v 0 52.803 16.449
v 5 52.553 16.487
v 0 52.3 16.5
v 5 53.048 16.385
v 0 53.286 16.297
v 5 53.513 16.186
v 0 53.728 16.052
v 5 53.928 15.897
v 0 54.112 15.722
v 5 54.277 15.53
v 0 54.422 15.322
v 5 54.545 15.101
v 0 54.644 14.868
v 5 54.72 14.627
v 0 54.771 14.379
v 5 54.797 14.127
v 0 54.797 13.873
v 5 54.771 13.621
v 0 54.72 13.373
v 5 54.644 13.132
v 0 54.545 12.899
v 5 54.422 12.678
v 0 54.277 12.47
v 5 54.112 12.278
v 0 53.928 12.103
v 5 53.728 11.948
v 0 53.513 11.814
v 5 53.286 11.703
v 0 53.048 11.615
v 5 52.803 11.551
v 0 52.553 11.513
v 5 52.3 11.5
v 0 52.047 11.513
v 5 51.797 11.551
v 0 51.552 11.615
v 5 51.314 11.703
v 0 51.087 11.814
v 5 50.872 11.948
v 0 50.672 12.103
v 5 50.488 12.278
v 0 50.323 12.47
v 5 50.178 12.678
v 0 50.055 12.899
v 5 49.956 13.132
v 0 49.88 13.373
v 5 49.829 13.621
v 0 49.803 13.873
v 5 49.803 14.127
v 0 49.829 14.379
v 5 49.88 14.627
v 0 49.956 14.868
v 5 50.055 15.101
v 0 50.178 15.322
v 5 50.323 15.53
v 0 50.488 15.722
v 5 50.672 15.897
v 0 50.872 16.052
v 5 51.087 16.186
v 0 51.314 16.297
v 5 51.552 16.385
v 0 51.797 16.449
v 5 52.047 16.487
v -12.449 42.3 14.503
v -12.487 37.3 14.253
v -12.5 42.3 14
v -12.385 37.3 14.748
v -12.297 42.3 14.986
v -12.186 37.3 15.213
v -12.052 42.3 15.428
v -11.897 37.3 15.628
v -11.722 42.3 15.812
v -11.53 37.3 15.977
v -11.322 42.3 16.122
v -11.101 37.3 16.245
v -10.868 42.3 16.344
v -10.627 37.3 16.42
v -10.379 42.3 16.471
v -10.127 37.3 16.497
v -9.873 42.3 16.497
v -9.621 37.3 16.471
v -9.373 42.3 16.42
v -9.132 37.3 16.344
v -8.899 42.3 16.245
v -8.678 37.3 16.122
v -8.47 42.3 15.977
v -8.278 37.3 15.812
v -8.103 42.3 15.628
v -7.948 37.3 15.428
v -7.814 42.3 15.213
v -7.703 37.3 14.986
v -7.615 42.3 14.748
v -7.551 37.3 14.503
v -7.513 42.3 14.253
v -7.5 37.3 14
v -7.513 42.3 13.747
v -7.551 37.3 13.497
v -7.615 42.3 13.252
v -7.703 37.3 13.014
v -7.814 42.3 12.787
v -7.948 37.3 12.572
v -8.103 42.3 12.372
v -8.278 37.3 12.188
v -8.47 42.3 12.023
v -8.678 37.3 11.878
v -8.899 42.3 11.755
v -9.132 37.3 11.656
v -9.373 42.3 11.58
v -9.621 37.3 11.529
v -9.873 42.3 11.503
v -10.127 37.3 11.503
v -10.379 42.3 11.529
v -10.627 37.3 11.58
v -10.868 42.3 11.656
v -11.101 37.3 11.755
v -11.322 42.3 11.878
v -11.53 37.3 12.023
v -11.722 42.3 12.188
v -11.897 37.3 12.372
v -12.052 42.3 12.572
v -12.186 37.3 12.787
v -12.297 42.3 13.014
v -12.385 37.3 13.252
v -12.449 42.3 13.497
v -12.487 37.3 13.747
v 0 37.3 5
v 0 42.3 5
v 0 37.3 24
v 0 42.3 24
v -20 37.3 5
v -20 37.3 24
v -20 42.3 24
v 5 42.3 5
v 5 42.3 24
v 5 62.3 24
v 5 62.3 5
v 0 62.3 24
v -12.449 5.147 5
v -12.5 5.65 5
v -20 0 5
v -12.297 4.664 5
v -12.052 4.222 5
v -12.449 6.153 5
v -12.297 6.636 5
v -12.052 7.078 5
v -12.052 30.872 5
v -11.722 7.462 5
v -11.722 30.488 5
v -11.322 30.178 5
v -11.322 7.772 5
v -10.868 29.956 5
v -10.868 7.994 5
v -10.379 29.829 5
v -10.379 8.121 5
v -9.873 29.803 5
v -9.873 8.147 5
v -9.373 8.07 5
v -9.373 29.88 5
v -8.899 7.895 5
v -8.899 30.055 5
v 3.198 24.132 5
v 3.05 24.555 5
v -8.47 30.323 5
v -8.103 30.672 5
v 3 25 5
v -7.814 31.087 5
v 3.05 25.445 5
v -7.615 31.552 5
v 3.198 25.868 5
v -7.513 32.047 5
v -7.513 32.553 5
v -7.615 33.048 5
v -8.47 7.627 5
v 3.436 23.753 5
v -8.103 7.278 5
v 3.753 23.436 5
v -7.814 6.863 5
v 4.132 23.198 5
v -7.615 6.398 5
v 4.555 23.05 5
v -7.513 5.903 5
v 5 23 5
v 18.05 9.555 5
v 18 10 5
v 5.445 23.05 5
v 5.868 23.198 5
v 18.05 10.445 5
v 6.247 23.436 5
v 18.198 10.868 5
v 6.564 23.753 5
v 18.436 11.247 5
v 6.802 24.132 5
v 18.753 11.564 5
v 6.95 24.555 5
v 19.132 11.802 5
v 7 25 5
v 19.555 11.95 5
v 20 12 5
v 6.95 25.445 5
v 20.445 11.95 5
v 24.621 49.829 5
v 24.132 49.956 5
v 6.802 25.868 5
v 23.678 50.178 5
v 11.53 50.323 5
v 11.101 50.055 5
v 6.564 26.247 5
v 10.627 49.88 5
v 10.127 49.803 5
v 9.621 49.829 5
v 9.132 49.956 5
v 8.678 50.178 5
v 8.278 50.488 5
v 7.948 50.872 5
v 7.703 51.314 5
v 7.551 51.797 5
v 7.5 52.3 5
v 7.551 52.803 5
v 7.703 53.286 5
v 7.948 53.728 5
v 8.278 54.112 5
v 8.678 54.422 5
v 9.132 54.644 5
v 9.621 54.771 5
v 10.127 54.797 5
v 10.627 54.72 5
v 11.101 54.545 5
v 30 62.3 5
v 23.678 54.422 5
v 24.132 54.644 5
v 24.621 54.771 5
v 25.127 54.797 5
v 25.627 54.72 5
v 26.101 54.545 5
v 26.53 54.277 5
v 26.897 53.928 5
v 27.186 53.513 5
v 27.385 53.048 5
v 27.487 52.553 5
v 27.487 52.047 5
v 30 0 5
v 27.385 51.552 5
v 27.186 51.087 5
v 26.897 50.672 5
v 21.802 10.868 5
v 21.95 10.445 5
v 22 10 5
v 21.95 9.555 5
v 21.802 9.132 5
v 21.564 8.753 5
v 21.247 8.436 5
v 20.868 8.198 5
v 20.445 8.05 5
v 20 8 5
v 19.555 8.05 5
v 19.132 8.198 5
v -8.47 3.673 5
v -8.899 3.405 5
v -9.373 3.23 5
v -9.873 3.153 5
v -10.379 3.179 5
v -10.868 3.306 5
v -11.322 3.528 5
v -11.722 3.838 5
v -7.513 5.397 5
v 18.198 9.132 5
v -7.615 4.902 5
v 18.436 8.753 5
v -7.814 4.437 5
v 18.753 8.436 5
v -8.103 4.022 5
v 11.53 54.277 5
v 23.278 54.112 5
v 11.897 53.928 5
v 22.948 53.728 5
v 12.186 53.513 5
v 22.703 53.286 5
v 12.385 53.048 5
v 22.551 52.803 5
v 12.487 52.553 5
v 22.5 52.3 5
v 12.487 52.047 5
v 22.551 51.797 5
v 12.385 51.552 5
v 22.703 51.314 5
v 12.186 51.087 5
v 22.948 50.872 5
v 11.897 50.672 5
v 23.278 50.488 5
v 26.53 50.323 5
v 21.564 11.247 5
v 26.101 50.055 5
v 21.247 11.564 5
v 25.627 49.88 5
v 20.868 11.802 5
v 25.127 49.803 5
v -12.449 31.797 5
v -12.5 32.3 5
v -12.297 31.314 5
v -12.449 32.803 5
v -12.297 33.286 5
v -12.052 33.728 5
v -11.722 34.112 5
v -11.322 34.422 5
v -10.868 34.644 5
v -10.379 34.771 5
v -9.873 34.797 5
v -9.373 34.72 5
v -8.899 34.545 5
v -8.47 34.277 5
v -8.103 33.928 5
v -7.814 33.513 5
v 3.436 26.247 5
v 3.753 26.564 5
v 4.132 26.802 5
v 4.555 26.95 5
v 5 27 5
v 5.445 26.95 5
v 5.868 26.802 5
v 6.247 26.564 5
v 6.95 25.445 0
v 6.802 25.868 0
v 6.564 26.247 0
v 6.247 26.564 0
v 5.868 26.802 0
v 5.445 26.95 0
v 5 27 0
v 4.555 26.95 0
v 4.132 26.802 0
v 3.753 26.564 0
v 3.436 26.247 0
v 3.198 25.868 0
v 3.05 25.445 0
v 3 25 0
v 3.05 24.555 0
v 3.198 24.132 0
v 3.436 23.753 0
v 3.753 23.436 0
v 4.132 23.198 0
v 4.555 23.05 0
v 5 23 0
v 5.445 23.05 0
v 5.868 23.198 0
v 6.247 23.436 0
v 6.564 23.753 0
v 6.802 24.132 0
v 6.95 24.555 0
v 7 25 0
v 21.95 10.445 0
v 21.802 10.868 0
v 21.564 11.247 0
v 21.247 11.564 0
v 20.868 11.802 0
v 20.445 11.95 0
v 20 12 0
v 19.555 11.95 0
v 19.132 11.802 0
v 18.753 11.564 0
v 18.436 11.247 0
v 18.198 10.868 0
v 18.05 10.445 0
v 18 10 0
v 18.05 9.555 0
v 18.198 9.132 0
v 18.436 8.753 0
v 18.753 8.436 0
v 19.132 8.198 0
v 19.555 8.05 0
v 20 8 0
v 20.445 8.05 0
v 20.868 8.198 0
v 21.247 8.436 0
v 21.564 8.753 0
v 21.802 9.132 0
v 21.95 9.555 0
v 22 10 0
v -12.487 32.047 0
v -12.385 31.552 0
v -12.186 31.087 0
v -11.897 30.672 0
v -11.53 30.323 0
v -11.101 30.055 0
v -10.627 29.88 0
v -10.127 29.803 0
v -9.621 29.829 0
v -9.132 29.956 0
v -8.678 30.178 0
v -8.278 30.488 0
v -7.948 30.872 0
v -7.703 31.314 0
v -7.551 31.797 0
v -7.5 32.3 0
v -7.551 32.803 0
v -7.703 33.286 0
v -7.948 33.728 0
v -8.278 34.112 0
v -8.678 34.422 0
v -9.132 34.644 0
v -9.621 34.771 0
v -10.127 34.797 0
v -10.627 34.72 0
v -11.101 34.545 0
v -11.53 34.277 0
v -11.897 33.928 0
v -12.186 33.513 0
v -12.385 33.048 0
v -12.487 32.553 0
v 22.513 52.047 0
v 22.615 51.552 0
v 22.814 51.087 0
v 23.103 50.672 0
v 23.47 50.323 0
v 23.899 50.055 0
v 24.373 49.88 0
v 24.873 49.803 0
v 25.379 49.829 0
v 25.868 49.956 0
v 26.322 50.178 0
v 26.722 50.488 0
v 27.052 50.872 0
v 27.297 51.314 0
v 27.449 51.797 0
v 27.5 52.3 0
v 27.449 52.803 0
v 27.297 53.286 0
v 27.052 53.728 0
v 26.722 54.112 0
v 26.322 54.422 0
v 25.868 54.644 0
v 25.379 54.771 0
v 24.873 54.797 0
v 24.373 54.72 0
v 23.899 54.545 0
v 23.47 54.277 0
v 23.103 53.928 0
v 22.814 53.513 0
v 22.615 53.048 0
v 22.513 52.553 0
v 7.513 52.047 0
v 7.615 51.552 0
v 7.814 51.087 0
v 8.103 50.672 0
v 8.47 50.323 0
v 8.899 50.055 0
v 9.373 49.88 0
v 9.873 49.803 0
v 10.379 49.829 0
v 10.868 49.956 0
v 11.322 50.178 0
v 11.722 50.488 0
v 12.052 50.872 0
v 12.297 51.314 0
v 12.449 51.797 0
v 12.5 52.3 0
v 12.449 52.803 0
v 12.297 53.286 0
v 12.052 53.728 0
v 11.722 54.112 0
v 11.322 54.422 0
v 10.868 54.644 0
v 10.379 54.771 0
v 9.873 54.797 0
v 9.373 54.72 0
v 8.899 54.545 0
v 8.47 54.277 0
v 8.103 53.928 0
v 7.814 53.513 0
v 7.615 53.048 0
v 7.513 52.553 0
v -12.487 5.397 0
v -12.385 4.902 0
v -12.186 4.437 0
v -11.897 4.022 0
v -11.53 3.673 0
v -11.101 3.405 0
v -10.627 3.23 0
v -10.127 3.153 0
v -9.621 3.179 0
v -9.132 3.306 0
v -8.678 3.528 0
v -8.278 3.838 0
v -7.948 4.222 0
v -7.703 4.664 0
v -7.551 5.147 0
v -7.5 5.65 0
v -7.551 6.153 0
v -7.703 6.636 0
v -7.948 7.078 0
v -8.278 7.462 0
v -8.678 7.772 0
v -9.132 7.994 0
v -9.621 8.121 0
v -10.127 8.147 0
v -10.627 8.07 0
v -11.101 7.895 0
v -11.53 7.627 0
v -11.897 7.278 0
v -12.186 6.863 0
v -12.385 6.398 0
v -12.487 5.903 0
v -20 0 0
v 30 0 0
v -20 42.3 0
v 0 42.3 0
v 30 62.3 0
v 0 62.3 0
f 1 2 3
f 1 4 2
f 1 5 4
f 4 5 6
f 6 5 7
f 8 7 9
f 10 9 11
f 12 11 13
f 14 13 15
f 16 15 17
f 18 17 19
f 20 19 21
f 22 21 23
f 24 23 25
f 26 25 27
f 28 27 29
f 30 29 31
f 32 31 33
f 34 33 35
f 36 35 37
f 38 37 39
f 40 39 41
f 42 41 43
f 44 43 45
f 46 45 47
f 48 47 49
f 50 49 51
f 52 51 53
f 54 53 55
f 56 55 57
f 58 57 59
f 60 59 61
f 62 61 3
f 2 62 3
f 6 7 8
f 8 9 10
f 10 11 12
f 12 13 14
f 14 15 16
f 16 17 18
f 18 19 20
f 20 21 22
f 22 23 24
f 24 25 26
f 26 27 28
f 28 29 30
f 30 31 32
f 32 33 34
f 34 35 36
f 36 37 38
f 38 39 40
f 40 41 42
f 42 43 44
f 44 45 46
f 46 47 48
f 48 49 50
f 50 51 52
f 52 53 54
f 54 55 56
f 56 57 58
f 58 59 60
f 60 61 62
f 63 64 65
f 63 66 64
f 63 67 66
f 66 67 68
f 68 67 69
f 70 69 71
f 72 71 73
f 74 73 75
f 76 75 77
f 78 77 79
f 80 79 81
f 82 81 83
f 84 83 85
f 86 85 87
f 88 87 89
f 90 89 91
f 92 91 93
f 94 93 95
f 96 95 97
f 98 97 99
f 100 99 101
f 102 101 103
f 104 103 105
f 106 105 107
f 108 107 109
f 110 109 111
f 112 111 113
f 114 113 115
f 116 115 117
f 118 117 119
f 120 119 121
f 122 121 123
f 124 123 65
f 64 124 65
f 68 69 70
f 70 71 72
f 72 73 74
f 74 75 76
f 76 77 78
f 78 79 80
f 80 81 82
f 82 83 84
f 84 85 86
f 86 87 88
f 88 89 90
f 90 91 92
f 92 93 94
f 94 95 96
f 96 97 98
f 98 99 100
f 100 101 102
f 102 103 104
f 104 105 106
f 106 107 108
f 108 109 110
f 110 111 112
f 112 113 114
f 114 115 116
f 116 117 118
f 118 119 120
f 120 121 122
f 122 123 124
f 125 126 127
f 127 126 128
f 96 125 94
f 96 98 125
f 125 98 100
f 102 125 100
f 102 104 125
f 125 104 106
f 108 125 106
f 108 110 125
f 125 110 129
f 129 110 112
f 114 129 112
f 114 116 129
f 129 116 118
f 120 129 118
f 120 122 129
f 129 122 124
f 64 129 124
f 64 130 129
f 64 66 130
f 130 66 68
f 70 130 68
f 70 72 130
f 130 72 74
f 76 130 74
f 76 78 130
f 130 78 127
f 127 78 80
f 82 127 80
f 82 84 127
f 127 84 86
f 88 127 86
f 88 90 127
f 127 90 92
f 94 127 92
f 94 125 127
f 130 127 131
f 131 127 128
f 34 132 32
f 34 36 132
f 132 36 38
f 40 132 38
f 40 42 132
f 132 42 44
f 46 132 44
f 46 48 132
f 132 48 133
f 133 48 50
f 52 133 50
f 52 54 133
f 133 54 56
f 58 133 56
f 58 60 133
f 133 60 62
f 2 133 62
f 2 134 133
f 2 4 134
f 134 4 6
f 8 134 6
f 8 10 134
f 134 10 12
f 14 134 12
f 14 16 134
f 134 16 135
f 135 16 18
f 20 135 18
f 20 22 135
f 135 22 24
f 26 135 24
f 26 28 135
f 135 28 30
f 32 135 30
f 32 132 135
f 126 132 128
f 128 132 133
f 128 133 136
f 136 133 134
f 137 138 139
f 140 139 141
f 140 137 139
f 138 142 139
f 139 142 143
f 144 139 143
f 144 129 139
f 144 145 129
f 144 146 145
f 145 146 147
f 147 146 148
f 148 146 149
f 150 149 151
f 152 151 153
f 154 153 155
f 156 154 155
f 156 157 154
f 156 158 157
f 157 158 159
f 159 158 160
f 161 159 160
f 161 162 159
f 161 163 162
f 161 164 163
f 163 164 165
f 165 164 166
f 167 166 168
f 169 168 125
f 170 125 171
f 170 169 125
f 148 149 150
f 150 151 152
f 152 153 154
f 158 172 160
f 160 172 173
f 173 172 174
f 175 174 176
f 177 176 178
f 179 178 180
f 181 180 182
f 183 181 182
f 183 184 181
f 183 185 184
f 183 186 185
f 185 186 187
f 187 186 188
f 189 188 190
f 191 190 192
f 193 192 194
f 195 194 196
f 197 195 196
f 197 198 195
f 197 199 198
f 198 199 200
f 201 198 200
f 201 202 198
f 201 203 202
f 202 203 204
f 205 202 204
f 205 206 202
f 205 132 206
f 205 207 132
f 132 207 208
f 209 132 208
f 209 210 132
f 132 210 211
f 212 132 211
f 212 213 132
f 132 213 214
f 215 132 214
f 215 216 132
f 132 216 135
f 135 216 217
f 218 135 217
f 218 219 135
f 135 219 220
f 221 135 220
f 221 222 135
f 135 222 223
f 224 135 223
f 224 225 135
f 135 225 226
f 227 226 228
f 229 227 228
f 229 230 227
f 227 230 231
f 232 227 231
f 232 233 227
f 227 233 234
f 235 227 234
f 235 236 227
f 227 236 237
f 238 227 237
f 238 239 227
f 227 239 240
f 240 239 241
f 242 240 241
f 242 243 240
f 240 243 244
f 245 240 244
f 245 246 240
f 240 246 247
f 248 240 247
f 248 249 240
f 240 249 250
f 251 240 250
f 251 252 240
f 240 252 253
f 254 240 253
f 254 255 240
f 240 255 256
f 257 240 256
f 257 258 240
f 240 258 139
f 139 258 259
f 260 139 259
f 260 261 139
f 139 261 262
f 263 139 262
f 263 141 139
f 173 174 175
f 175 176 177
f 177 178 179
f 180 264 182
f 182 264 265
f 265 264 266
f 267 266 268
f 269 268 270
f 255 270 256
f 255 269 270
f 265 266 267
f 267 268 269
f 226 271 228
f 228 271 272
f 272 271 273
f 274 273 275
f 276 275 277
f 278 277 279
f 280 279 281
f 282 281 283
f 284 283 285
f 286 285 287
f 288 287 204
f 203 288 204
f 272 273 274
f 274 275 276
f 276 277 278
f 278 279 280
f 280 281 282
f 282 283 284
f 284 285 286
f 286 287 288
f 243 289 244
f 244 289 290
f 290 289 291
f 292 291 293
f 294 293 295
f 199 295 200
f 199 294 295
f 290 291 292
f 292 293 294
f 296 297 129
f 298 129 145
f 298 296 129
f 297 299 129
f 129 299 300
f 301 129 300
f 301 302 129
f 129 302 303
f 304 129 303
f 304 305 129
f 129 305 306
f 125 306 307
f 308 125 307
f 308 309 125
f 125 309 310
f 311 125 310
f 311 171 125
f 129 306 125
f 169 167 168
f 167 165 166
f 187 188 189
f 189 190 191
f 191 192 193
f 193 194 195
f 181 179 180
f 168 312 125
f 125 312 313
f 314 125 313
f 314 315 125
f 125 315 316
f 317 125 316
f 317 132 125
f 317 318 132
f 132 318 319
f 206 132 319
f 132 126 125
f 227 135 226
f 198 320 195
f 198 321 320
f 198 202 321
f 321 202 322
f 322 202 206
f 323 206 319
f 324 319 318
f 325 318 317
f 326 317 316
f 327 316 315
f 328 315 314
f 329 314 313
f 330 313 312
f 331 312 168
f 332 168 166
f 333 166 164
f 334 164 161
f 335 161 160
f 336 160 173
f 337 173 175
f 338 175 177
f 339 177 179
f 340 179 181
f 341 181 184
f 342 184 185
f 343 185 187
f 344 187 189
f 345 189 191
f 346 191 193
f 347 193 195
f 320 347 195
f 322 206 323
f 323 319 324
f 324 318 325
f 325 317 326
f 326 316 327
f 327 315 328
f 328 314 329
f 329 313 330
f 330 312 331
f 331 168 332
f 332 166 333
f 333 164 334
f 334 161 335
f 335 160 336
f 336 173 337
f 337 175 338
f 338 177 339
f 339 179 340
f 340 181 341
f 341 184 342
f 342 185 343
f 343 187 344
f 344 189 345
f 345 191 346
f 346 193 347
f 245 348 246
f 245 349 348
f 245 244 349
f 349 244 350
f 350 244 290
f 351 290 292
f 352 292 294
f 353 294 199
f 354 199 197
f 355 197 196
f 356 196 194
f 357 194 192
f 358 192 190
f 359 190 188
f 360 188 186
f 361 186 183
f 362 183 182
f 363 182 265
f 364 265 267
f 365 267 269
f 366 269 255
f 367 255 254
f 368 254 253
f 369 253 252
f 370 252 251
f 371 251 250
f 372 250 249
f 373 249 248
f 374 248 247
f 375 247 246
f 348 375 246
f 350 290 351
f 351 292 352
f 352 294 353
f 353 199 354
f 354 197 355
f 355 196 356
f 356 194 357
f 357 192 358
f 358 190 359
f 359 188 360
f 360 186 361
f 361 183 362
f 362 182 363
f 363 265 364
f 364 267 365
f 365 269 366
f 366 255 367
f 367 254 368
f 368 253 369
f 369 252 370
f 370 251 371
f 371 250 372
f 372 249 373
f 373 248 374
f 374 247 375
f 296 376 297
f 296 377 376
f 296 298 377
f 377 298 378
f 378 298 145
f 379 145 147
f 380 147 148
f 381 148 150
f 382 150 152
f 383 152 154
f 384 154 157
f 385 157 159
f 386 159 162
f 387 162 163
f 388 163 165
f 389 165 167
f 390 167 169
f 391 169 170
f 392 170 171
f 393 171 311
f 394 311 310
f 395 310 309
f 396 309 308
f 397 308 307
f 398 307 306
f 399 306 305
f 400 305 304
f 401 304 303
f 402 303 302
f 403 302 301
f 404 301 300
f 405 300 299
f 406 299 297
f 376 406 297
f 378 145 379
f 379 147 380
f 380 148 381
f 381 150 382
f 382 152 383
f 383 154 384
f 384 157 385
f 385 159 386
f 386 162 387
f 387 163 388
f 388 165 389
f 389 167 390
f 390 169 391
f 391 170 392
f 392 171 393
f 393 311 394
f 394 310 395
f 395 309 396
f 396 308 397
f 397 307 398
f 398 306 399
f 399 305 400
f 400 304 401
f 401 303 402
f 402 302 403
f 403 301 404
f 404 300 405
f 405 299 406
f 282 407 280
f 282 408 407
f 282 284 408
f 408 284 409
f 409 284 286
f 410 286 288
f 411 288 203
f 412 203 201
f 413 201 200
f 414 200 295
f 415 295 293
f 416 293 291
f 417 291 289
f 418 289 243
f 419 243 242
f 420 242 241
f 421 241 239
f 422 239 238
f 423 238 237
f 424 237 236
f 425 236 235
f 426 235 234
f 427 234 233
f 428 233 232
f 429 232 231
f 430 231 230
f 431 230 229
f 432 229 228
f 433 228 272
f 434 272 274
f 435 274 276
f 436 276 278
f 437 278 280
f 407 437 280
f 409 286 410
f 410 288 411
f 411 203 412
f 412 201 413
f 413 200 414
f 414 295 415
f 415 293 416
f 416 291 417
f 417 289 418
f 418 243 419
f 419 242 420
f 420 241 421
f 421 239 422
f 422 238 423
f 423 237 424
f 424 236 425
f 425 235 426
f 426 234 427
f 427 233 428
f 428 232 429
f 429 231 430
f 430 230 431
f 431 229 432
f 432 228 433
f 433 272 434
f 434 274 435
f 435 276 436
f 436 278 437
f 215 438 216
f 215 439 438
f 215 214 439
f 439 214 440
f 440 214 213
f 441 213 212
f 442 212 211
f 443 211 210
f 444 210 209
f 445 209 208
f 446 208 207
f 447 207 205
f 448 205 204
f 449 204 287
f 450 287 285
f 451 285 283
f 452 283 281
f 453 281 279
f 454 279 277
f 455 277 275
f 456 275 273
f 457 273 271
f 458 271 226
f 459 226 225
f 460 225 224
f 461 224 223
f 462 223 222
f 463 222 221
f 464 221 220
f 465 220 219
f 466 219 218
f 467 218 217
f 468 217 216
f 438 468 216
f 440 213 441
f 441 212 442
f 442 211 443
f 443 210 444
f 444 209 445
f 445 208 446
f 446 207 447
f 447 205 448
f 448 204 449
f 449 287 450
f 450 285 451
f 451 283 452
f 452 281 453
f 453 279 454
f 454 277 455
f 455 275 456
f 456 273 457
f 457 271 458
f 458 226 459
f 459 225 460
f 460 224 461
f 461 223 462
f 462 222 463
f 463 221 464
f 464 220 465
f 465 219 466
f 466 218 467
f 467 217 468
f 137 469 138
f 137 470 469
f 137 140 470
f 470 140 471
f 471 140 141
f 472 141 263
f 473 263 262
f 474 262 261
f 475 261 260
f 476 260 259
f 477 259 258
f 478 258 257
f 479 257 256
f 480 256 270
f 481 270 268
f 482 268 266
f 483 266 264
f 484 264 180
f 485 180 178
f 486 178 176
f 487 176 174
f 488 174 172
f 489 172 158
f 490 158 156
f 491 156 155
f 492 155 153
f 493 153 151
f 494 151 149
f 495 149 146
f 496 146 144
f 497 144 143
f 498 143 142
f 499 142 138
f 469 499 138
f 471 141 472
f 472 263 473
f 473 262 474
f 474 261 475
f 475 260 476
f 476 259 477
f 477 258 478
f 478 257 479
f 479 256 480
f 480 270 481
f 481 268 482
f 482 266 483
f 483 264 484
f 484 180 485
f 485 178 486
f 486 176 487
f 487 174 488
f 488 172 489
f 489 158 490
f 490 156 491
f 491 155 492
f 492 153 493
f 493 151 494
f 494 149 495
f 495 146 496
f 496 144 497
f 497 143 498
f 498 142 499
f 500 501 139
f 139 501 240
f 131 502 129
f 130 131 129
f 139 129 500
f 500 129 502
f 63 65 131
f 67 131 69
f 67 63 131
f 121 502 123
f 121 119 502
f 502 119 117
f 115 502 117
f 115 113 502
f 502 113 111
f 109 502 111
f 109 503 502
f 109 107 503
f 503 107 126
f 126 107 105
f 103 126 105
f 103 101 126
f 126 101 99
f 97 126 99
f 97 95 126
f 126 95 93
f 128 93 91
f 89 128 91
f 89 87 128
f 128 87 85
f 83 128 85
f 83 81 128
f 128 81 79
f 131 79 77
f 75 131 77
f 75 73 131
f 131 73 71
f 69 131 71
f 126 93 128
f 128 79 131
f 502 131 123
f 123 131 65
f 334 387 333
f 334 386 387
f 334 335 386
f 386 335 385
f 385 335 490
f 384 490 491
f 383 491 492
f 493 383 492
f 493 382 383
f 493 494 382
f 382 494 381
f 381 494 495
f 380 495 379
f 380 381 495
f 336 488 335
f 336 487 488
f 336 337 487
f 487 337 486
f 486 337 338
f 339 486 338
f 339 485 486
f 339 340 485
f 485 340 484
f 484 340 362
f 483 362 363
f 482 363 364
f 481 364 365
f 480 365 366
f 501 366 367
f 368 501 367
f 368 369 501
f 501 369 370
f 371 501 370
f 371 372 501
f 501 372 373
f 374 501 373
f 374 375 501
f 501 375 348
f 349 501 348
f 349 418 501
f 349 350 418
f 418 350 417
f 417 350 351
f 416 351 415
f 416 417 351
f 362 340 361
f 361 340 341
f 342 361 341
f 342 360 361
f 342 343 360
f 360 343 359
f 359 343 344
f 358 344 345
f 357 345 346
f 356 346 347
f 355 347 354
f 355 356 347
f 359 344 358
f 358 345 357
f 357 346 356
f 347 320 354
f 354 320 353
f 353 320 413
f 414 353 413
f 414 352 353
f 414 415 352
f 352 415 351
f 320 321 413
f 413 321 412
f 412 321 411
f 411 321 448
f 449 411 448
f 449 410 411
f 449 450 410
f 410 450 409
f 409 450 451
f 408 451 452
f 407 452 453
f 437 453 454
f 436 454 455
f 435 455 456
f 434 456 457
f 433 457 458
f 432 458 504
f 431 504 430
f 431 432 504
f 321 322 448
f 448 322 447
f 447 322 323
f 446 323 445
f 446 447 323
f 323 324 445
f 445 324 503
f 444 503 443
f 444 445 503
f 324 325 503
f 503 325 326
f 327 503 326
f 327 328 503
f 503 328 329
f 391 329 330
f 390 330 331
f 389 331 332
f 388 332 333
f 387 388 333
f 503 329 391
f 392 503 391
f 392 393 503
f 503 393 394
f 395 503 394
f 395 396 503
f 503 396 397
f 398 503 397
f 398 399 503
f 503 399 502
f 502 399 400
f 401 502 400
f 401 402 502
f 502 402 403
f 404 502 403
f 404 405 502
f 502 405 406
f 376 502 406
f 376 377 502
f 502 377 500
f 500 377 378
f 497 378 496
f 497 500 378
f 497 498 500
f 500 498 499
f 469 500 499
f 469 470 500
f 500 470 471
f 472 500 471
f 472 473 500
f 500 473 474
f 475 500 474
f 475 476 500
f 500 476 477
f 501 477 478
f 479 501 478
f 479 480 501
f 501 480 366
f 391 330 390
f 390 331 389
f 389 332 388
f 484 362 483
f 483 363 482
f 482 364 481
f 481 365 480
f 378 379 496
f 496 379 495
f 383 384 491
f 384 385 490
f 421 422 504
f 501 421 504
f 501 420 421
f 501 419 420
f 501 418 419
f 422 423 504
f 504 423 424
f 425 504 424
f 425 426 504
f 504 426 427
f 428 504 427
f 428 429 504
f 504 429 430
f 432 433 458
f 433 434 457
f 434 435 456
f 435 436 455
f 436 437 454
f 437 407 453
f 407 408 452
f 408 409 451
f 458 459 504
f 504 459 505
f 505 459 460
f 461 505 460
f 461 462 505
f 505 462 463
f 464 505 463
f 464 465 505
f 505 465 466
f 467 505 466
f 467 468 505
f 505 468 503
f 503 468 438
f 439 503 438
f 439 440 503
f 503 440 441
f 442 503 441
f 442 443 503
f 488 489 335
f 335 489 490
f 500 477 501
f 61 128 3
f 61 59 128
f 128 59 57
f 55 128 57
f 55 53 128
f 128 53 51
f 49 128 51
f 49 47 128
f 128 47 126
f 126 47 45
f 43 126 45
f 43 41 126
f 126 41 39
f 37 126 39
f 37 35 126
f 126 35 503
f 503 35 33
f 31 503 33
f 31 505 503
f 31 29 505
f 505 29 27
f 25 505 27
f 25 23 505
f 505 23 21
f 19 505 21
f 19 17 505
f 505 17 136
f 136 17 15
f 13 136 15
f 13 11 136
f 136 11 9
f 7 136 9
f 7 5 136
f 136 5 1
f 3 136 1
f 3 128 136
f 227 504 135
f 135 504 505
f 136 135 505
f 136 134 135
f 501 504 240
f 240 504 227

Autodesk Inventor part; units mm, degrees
ref_plane "YZ Plane" through (0, 0, 0) normal (1, 0, 0) x (0, 1, 0)
ref_plane "XZ Plane" through (0, 0, 0) normal (0, 1, 0) x (-1, 0, 0)
ref_plane "XY Plane" through (0, 0, 0) normal (0, 0, 1) x (1, 0, 0)
sketch "Sketch1" plane through (0, 0, 0) normal (0, 0, 1) x (1, 0, 0)
  line L0 (0, 0) -> (30, 0)
  line L1 (30, 0) -> (30, 42.3)
  line L2 (30, 42.3) -> (0, 42.3)
  line L3 (0, 42.3) -> (0, 0)
  line L4 (0, 0.3) -> (0, 42.3)
  line L5 (0, 42.3) -> (42.3, 42.3)
  line L6 (0, 42.3) -> (30, 42.3)
  line L7 (30, 42.3) -> (30, 62.3)
  line L8 (30, 62.3) -> (0, 62.3)
  line L9 (0, 62.3) -> (0, 42.3)
  line L10 (0, 42.3) -> (-20, 42.3)
  line L11 (-20, 42.3) -> (-20, 0)
  line L12 (-20, 0) -> (0, 0)
  line L13 (0, 0) -> (0, 42.3)
  point P0 (10, 52.3)
  point P1 (25, 52.3)
  point P2 (-10, 32.3)
  point P3 (-10, 5.65)
  dimension "d0" = 30
  dimension "d16" = 42.3
  dimension "d21" = 20
  dimension "d22" = 20
  dimension "d49" = 30
  dimension "d50" = 5
  dimension "d69" = 10
  dimension "d70" = 10
  dimension "d71" = 10
extrude "Extrusion2" add sketch "Sketch1" along normal blind 5
hole "Hole3" at (25, 52.3, 0) at (10, 52.3, 0) at (-10, 32.3, 0) at (-10, 5.65, 0) direction (0, 0, 1) diameter 5 depth 8 tip angle 118
sketch "Sketch2" plane through (0, 0, 0) normal (0, 0, -1) x (-1, 0, 0)
  line L0 (20, 0) -> (-30, 0) projected
  line L1 (-30, 0) -> (-30, 62.3) projected
  point P0 (0, 0)
  point P1 (-20, 10)
  dimension "d51" = 10
  dimension "d52" = 10
hole "Hole4" at (20, 10, 0) direction (0, 0, 1) diameter 4 depth 8 tip angle 118
sketch "Sketch3" plane through (0, 0, 0) normal (0, 0, -1) x (-1, 0, 0)
  line L0 (-30, 0) -> (-30, 62.3) projected
  line L1 (20, 0) -> (-30, 0) projected
  point P0 (0, 0)
  point P1 (-5, 25)
  dimension "d60" = 25
  dimension "d61" = 25
hole "Hole5" at (5, 25, 0) direction (0, 0, 1) diameter 4 depth 8 tip angle 118
sketch "Sketch4" plane through (0, 0, 5) normal (0, 0, 1) x (1, 0, 0)
  line L0 (-20, 42.3) -> (0, 42.3)
  line L1 (0, 42.3) -> (0, 37.3)
  line L2 (0, 37.3) -> (-20, 37.3)
  line L3 (-20, 37.3) -> (-20, 42.3)
  line L4 (30, 62.3) -> (0, 62.3) projected
  line L5 (0, 42.3) -> (5, 42.3)
  line L6 (5, 42.3) -> (5, 62.3)
  line L7 (5, 62.3) -> (0, 62.3)
  line L8 (0, 62.3) -> (0, 42.3)
  point P0 (0, 0)
  dimension "d72" = 5
  dimension "d73" = 5
extrude "Extrusion3" add sketch "Sketch4" along normal blind 19
sketch "Sketch5" plane through (-20, 37.3, 5) normal (0, -1, 0) x (1, 0, 0)
  line L0 (20, 19) -> (0, 19) projected
  line L1 (0, -5) -> (0, 19) projected
  point P0 (20, -5)
  point P1 (10, 9)
  dimension "d76" = 10
  dimension "d77" = 10
hole "Hole6" at (-10, 37.3, 14) direction (0, 1, 0) diameter 5 depth 8 tip angle 118
sketch "Sketch6" plane through (5, 42.3, 5) normal (1, 0, 0) x (0, 0, -1)
  line L0 (-19, 20) -> (-19, 0) projected
  line L1 (5, 20) -> (-19, 20) projected
  point P0 (5, -42.3)
  point P1 (-9, 10)
  dimension "d85" = 10
  dimension "d86" = 10
hole "Hole7" at (5, 52.3, 14) direction (-1, 0, 0) diameter 5 depth 8 tip angle 118
properties part number "Corner Mount"
